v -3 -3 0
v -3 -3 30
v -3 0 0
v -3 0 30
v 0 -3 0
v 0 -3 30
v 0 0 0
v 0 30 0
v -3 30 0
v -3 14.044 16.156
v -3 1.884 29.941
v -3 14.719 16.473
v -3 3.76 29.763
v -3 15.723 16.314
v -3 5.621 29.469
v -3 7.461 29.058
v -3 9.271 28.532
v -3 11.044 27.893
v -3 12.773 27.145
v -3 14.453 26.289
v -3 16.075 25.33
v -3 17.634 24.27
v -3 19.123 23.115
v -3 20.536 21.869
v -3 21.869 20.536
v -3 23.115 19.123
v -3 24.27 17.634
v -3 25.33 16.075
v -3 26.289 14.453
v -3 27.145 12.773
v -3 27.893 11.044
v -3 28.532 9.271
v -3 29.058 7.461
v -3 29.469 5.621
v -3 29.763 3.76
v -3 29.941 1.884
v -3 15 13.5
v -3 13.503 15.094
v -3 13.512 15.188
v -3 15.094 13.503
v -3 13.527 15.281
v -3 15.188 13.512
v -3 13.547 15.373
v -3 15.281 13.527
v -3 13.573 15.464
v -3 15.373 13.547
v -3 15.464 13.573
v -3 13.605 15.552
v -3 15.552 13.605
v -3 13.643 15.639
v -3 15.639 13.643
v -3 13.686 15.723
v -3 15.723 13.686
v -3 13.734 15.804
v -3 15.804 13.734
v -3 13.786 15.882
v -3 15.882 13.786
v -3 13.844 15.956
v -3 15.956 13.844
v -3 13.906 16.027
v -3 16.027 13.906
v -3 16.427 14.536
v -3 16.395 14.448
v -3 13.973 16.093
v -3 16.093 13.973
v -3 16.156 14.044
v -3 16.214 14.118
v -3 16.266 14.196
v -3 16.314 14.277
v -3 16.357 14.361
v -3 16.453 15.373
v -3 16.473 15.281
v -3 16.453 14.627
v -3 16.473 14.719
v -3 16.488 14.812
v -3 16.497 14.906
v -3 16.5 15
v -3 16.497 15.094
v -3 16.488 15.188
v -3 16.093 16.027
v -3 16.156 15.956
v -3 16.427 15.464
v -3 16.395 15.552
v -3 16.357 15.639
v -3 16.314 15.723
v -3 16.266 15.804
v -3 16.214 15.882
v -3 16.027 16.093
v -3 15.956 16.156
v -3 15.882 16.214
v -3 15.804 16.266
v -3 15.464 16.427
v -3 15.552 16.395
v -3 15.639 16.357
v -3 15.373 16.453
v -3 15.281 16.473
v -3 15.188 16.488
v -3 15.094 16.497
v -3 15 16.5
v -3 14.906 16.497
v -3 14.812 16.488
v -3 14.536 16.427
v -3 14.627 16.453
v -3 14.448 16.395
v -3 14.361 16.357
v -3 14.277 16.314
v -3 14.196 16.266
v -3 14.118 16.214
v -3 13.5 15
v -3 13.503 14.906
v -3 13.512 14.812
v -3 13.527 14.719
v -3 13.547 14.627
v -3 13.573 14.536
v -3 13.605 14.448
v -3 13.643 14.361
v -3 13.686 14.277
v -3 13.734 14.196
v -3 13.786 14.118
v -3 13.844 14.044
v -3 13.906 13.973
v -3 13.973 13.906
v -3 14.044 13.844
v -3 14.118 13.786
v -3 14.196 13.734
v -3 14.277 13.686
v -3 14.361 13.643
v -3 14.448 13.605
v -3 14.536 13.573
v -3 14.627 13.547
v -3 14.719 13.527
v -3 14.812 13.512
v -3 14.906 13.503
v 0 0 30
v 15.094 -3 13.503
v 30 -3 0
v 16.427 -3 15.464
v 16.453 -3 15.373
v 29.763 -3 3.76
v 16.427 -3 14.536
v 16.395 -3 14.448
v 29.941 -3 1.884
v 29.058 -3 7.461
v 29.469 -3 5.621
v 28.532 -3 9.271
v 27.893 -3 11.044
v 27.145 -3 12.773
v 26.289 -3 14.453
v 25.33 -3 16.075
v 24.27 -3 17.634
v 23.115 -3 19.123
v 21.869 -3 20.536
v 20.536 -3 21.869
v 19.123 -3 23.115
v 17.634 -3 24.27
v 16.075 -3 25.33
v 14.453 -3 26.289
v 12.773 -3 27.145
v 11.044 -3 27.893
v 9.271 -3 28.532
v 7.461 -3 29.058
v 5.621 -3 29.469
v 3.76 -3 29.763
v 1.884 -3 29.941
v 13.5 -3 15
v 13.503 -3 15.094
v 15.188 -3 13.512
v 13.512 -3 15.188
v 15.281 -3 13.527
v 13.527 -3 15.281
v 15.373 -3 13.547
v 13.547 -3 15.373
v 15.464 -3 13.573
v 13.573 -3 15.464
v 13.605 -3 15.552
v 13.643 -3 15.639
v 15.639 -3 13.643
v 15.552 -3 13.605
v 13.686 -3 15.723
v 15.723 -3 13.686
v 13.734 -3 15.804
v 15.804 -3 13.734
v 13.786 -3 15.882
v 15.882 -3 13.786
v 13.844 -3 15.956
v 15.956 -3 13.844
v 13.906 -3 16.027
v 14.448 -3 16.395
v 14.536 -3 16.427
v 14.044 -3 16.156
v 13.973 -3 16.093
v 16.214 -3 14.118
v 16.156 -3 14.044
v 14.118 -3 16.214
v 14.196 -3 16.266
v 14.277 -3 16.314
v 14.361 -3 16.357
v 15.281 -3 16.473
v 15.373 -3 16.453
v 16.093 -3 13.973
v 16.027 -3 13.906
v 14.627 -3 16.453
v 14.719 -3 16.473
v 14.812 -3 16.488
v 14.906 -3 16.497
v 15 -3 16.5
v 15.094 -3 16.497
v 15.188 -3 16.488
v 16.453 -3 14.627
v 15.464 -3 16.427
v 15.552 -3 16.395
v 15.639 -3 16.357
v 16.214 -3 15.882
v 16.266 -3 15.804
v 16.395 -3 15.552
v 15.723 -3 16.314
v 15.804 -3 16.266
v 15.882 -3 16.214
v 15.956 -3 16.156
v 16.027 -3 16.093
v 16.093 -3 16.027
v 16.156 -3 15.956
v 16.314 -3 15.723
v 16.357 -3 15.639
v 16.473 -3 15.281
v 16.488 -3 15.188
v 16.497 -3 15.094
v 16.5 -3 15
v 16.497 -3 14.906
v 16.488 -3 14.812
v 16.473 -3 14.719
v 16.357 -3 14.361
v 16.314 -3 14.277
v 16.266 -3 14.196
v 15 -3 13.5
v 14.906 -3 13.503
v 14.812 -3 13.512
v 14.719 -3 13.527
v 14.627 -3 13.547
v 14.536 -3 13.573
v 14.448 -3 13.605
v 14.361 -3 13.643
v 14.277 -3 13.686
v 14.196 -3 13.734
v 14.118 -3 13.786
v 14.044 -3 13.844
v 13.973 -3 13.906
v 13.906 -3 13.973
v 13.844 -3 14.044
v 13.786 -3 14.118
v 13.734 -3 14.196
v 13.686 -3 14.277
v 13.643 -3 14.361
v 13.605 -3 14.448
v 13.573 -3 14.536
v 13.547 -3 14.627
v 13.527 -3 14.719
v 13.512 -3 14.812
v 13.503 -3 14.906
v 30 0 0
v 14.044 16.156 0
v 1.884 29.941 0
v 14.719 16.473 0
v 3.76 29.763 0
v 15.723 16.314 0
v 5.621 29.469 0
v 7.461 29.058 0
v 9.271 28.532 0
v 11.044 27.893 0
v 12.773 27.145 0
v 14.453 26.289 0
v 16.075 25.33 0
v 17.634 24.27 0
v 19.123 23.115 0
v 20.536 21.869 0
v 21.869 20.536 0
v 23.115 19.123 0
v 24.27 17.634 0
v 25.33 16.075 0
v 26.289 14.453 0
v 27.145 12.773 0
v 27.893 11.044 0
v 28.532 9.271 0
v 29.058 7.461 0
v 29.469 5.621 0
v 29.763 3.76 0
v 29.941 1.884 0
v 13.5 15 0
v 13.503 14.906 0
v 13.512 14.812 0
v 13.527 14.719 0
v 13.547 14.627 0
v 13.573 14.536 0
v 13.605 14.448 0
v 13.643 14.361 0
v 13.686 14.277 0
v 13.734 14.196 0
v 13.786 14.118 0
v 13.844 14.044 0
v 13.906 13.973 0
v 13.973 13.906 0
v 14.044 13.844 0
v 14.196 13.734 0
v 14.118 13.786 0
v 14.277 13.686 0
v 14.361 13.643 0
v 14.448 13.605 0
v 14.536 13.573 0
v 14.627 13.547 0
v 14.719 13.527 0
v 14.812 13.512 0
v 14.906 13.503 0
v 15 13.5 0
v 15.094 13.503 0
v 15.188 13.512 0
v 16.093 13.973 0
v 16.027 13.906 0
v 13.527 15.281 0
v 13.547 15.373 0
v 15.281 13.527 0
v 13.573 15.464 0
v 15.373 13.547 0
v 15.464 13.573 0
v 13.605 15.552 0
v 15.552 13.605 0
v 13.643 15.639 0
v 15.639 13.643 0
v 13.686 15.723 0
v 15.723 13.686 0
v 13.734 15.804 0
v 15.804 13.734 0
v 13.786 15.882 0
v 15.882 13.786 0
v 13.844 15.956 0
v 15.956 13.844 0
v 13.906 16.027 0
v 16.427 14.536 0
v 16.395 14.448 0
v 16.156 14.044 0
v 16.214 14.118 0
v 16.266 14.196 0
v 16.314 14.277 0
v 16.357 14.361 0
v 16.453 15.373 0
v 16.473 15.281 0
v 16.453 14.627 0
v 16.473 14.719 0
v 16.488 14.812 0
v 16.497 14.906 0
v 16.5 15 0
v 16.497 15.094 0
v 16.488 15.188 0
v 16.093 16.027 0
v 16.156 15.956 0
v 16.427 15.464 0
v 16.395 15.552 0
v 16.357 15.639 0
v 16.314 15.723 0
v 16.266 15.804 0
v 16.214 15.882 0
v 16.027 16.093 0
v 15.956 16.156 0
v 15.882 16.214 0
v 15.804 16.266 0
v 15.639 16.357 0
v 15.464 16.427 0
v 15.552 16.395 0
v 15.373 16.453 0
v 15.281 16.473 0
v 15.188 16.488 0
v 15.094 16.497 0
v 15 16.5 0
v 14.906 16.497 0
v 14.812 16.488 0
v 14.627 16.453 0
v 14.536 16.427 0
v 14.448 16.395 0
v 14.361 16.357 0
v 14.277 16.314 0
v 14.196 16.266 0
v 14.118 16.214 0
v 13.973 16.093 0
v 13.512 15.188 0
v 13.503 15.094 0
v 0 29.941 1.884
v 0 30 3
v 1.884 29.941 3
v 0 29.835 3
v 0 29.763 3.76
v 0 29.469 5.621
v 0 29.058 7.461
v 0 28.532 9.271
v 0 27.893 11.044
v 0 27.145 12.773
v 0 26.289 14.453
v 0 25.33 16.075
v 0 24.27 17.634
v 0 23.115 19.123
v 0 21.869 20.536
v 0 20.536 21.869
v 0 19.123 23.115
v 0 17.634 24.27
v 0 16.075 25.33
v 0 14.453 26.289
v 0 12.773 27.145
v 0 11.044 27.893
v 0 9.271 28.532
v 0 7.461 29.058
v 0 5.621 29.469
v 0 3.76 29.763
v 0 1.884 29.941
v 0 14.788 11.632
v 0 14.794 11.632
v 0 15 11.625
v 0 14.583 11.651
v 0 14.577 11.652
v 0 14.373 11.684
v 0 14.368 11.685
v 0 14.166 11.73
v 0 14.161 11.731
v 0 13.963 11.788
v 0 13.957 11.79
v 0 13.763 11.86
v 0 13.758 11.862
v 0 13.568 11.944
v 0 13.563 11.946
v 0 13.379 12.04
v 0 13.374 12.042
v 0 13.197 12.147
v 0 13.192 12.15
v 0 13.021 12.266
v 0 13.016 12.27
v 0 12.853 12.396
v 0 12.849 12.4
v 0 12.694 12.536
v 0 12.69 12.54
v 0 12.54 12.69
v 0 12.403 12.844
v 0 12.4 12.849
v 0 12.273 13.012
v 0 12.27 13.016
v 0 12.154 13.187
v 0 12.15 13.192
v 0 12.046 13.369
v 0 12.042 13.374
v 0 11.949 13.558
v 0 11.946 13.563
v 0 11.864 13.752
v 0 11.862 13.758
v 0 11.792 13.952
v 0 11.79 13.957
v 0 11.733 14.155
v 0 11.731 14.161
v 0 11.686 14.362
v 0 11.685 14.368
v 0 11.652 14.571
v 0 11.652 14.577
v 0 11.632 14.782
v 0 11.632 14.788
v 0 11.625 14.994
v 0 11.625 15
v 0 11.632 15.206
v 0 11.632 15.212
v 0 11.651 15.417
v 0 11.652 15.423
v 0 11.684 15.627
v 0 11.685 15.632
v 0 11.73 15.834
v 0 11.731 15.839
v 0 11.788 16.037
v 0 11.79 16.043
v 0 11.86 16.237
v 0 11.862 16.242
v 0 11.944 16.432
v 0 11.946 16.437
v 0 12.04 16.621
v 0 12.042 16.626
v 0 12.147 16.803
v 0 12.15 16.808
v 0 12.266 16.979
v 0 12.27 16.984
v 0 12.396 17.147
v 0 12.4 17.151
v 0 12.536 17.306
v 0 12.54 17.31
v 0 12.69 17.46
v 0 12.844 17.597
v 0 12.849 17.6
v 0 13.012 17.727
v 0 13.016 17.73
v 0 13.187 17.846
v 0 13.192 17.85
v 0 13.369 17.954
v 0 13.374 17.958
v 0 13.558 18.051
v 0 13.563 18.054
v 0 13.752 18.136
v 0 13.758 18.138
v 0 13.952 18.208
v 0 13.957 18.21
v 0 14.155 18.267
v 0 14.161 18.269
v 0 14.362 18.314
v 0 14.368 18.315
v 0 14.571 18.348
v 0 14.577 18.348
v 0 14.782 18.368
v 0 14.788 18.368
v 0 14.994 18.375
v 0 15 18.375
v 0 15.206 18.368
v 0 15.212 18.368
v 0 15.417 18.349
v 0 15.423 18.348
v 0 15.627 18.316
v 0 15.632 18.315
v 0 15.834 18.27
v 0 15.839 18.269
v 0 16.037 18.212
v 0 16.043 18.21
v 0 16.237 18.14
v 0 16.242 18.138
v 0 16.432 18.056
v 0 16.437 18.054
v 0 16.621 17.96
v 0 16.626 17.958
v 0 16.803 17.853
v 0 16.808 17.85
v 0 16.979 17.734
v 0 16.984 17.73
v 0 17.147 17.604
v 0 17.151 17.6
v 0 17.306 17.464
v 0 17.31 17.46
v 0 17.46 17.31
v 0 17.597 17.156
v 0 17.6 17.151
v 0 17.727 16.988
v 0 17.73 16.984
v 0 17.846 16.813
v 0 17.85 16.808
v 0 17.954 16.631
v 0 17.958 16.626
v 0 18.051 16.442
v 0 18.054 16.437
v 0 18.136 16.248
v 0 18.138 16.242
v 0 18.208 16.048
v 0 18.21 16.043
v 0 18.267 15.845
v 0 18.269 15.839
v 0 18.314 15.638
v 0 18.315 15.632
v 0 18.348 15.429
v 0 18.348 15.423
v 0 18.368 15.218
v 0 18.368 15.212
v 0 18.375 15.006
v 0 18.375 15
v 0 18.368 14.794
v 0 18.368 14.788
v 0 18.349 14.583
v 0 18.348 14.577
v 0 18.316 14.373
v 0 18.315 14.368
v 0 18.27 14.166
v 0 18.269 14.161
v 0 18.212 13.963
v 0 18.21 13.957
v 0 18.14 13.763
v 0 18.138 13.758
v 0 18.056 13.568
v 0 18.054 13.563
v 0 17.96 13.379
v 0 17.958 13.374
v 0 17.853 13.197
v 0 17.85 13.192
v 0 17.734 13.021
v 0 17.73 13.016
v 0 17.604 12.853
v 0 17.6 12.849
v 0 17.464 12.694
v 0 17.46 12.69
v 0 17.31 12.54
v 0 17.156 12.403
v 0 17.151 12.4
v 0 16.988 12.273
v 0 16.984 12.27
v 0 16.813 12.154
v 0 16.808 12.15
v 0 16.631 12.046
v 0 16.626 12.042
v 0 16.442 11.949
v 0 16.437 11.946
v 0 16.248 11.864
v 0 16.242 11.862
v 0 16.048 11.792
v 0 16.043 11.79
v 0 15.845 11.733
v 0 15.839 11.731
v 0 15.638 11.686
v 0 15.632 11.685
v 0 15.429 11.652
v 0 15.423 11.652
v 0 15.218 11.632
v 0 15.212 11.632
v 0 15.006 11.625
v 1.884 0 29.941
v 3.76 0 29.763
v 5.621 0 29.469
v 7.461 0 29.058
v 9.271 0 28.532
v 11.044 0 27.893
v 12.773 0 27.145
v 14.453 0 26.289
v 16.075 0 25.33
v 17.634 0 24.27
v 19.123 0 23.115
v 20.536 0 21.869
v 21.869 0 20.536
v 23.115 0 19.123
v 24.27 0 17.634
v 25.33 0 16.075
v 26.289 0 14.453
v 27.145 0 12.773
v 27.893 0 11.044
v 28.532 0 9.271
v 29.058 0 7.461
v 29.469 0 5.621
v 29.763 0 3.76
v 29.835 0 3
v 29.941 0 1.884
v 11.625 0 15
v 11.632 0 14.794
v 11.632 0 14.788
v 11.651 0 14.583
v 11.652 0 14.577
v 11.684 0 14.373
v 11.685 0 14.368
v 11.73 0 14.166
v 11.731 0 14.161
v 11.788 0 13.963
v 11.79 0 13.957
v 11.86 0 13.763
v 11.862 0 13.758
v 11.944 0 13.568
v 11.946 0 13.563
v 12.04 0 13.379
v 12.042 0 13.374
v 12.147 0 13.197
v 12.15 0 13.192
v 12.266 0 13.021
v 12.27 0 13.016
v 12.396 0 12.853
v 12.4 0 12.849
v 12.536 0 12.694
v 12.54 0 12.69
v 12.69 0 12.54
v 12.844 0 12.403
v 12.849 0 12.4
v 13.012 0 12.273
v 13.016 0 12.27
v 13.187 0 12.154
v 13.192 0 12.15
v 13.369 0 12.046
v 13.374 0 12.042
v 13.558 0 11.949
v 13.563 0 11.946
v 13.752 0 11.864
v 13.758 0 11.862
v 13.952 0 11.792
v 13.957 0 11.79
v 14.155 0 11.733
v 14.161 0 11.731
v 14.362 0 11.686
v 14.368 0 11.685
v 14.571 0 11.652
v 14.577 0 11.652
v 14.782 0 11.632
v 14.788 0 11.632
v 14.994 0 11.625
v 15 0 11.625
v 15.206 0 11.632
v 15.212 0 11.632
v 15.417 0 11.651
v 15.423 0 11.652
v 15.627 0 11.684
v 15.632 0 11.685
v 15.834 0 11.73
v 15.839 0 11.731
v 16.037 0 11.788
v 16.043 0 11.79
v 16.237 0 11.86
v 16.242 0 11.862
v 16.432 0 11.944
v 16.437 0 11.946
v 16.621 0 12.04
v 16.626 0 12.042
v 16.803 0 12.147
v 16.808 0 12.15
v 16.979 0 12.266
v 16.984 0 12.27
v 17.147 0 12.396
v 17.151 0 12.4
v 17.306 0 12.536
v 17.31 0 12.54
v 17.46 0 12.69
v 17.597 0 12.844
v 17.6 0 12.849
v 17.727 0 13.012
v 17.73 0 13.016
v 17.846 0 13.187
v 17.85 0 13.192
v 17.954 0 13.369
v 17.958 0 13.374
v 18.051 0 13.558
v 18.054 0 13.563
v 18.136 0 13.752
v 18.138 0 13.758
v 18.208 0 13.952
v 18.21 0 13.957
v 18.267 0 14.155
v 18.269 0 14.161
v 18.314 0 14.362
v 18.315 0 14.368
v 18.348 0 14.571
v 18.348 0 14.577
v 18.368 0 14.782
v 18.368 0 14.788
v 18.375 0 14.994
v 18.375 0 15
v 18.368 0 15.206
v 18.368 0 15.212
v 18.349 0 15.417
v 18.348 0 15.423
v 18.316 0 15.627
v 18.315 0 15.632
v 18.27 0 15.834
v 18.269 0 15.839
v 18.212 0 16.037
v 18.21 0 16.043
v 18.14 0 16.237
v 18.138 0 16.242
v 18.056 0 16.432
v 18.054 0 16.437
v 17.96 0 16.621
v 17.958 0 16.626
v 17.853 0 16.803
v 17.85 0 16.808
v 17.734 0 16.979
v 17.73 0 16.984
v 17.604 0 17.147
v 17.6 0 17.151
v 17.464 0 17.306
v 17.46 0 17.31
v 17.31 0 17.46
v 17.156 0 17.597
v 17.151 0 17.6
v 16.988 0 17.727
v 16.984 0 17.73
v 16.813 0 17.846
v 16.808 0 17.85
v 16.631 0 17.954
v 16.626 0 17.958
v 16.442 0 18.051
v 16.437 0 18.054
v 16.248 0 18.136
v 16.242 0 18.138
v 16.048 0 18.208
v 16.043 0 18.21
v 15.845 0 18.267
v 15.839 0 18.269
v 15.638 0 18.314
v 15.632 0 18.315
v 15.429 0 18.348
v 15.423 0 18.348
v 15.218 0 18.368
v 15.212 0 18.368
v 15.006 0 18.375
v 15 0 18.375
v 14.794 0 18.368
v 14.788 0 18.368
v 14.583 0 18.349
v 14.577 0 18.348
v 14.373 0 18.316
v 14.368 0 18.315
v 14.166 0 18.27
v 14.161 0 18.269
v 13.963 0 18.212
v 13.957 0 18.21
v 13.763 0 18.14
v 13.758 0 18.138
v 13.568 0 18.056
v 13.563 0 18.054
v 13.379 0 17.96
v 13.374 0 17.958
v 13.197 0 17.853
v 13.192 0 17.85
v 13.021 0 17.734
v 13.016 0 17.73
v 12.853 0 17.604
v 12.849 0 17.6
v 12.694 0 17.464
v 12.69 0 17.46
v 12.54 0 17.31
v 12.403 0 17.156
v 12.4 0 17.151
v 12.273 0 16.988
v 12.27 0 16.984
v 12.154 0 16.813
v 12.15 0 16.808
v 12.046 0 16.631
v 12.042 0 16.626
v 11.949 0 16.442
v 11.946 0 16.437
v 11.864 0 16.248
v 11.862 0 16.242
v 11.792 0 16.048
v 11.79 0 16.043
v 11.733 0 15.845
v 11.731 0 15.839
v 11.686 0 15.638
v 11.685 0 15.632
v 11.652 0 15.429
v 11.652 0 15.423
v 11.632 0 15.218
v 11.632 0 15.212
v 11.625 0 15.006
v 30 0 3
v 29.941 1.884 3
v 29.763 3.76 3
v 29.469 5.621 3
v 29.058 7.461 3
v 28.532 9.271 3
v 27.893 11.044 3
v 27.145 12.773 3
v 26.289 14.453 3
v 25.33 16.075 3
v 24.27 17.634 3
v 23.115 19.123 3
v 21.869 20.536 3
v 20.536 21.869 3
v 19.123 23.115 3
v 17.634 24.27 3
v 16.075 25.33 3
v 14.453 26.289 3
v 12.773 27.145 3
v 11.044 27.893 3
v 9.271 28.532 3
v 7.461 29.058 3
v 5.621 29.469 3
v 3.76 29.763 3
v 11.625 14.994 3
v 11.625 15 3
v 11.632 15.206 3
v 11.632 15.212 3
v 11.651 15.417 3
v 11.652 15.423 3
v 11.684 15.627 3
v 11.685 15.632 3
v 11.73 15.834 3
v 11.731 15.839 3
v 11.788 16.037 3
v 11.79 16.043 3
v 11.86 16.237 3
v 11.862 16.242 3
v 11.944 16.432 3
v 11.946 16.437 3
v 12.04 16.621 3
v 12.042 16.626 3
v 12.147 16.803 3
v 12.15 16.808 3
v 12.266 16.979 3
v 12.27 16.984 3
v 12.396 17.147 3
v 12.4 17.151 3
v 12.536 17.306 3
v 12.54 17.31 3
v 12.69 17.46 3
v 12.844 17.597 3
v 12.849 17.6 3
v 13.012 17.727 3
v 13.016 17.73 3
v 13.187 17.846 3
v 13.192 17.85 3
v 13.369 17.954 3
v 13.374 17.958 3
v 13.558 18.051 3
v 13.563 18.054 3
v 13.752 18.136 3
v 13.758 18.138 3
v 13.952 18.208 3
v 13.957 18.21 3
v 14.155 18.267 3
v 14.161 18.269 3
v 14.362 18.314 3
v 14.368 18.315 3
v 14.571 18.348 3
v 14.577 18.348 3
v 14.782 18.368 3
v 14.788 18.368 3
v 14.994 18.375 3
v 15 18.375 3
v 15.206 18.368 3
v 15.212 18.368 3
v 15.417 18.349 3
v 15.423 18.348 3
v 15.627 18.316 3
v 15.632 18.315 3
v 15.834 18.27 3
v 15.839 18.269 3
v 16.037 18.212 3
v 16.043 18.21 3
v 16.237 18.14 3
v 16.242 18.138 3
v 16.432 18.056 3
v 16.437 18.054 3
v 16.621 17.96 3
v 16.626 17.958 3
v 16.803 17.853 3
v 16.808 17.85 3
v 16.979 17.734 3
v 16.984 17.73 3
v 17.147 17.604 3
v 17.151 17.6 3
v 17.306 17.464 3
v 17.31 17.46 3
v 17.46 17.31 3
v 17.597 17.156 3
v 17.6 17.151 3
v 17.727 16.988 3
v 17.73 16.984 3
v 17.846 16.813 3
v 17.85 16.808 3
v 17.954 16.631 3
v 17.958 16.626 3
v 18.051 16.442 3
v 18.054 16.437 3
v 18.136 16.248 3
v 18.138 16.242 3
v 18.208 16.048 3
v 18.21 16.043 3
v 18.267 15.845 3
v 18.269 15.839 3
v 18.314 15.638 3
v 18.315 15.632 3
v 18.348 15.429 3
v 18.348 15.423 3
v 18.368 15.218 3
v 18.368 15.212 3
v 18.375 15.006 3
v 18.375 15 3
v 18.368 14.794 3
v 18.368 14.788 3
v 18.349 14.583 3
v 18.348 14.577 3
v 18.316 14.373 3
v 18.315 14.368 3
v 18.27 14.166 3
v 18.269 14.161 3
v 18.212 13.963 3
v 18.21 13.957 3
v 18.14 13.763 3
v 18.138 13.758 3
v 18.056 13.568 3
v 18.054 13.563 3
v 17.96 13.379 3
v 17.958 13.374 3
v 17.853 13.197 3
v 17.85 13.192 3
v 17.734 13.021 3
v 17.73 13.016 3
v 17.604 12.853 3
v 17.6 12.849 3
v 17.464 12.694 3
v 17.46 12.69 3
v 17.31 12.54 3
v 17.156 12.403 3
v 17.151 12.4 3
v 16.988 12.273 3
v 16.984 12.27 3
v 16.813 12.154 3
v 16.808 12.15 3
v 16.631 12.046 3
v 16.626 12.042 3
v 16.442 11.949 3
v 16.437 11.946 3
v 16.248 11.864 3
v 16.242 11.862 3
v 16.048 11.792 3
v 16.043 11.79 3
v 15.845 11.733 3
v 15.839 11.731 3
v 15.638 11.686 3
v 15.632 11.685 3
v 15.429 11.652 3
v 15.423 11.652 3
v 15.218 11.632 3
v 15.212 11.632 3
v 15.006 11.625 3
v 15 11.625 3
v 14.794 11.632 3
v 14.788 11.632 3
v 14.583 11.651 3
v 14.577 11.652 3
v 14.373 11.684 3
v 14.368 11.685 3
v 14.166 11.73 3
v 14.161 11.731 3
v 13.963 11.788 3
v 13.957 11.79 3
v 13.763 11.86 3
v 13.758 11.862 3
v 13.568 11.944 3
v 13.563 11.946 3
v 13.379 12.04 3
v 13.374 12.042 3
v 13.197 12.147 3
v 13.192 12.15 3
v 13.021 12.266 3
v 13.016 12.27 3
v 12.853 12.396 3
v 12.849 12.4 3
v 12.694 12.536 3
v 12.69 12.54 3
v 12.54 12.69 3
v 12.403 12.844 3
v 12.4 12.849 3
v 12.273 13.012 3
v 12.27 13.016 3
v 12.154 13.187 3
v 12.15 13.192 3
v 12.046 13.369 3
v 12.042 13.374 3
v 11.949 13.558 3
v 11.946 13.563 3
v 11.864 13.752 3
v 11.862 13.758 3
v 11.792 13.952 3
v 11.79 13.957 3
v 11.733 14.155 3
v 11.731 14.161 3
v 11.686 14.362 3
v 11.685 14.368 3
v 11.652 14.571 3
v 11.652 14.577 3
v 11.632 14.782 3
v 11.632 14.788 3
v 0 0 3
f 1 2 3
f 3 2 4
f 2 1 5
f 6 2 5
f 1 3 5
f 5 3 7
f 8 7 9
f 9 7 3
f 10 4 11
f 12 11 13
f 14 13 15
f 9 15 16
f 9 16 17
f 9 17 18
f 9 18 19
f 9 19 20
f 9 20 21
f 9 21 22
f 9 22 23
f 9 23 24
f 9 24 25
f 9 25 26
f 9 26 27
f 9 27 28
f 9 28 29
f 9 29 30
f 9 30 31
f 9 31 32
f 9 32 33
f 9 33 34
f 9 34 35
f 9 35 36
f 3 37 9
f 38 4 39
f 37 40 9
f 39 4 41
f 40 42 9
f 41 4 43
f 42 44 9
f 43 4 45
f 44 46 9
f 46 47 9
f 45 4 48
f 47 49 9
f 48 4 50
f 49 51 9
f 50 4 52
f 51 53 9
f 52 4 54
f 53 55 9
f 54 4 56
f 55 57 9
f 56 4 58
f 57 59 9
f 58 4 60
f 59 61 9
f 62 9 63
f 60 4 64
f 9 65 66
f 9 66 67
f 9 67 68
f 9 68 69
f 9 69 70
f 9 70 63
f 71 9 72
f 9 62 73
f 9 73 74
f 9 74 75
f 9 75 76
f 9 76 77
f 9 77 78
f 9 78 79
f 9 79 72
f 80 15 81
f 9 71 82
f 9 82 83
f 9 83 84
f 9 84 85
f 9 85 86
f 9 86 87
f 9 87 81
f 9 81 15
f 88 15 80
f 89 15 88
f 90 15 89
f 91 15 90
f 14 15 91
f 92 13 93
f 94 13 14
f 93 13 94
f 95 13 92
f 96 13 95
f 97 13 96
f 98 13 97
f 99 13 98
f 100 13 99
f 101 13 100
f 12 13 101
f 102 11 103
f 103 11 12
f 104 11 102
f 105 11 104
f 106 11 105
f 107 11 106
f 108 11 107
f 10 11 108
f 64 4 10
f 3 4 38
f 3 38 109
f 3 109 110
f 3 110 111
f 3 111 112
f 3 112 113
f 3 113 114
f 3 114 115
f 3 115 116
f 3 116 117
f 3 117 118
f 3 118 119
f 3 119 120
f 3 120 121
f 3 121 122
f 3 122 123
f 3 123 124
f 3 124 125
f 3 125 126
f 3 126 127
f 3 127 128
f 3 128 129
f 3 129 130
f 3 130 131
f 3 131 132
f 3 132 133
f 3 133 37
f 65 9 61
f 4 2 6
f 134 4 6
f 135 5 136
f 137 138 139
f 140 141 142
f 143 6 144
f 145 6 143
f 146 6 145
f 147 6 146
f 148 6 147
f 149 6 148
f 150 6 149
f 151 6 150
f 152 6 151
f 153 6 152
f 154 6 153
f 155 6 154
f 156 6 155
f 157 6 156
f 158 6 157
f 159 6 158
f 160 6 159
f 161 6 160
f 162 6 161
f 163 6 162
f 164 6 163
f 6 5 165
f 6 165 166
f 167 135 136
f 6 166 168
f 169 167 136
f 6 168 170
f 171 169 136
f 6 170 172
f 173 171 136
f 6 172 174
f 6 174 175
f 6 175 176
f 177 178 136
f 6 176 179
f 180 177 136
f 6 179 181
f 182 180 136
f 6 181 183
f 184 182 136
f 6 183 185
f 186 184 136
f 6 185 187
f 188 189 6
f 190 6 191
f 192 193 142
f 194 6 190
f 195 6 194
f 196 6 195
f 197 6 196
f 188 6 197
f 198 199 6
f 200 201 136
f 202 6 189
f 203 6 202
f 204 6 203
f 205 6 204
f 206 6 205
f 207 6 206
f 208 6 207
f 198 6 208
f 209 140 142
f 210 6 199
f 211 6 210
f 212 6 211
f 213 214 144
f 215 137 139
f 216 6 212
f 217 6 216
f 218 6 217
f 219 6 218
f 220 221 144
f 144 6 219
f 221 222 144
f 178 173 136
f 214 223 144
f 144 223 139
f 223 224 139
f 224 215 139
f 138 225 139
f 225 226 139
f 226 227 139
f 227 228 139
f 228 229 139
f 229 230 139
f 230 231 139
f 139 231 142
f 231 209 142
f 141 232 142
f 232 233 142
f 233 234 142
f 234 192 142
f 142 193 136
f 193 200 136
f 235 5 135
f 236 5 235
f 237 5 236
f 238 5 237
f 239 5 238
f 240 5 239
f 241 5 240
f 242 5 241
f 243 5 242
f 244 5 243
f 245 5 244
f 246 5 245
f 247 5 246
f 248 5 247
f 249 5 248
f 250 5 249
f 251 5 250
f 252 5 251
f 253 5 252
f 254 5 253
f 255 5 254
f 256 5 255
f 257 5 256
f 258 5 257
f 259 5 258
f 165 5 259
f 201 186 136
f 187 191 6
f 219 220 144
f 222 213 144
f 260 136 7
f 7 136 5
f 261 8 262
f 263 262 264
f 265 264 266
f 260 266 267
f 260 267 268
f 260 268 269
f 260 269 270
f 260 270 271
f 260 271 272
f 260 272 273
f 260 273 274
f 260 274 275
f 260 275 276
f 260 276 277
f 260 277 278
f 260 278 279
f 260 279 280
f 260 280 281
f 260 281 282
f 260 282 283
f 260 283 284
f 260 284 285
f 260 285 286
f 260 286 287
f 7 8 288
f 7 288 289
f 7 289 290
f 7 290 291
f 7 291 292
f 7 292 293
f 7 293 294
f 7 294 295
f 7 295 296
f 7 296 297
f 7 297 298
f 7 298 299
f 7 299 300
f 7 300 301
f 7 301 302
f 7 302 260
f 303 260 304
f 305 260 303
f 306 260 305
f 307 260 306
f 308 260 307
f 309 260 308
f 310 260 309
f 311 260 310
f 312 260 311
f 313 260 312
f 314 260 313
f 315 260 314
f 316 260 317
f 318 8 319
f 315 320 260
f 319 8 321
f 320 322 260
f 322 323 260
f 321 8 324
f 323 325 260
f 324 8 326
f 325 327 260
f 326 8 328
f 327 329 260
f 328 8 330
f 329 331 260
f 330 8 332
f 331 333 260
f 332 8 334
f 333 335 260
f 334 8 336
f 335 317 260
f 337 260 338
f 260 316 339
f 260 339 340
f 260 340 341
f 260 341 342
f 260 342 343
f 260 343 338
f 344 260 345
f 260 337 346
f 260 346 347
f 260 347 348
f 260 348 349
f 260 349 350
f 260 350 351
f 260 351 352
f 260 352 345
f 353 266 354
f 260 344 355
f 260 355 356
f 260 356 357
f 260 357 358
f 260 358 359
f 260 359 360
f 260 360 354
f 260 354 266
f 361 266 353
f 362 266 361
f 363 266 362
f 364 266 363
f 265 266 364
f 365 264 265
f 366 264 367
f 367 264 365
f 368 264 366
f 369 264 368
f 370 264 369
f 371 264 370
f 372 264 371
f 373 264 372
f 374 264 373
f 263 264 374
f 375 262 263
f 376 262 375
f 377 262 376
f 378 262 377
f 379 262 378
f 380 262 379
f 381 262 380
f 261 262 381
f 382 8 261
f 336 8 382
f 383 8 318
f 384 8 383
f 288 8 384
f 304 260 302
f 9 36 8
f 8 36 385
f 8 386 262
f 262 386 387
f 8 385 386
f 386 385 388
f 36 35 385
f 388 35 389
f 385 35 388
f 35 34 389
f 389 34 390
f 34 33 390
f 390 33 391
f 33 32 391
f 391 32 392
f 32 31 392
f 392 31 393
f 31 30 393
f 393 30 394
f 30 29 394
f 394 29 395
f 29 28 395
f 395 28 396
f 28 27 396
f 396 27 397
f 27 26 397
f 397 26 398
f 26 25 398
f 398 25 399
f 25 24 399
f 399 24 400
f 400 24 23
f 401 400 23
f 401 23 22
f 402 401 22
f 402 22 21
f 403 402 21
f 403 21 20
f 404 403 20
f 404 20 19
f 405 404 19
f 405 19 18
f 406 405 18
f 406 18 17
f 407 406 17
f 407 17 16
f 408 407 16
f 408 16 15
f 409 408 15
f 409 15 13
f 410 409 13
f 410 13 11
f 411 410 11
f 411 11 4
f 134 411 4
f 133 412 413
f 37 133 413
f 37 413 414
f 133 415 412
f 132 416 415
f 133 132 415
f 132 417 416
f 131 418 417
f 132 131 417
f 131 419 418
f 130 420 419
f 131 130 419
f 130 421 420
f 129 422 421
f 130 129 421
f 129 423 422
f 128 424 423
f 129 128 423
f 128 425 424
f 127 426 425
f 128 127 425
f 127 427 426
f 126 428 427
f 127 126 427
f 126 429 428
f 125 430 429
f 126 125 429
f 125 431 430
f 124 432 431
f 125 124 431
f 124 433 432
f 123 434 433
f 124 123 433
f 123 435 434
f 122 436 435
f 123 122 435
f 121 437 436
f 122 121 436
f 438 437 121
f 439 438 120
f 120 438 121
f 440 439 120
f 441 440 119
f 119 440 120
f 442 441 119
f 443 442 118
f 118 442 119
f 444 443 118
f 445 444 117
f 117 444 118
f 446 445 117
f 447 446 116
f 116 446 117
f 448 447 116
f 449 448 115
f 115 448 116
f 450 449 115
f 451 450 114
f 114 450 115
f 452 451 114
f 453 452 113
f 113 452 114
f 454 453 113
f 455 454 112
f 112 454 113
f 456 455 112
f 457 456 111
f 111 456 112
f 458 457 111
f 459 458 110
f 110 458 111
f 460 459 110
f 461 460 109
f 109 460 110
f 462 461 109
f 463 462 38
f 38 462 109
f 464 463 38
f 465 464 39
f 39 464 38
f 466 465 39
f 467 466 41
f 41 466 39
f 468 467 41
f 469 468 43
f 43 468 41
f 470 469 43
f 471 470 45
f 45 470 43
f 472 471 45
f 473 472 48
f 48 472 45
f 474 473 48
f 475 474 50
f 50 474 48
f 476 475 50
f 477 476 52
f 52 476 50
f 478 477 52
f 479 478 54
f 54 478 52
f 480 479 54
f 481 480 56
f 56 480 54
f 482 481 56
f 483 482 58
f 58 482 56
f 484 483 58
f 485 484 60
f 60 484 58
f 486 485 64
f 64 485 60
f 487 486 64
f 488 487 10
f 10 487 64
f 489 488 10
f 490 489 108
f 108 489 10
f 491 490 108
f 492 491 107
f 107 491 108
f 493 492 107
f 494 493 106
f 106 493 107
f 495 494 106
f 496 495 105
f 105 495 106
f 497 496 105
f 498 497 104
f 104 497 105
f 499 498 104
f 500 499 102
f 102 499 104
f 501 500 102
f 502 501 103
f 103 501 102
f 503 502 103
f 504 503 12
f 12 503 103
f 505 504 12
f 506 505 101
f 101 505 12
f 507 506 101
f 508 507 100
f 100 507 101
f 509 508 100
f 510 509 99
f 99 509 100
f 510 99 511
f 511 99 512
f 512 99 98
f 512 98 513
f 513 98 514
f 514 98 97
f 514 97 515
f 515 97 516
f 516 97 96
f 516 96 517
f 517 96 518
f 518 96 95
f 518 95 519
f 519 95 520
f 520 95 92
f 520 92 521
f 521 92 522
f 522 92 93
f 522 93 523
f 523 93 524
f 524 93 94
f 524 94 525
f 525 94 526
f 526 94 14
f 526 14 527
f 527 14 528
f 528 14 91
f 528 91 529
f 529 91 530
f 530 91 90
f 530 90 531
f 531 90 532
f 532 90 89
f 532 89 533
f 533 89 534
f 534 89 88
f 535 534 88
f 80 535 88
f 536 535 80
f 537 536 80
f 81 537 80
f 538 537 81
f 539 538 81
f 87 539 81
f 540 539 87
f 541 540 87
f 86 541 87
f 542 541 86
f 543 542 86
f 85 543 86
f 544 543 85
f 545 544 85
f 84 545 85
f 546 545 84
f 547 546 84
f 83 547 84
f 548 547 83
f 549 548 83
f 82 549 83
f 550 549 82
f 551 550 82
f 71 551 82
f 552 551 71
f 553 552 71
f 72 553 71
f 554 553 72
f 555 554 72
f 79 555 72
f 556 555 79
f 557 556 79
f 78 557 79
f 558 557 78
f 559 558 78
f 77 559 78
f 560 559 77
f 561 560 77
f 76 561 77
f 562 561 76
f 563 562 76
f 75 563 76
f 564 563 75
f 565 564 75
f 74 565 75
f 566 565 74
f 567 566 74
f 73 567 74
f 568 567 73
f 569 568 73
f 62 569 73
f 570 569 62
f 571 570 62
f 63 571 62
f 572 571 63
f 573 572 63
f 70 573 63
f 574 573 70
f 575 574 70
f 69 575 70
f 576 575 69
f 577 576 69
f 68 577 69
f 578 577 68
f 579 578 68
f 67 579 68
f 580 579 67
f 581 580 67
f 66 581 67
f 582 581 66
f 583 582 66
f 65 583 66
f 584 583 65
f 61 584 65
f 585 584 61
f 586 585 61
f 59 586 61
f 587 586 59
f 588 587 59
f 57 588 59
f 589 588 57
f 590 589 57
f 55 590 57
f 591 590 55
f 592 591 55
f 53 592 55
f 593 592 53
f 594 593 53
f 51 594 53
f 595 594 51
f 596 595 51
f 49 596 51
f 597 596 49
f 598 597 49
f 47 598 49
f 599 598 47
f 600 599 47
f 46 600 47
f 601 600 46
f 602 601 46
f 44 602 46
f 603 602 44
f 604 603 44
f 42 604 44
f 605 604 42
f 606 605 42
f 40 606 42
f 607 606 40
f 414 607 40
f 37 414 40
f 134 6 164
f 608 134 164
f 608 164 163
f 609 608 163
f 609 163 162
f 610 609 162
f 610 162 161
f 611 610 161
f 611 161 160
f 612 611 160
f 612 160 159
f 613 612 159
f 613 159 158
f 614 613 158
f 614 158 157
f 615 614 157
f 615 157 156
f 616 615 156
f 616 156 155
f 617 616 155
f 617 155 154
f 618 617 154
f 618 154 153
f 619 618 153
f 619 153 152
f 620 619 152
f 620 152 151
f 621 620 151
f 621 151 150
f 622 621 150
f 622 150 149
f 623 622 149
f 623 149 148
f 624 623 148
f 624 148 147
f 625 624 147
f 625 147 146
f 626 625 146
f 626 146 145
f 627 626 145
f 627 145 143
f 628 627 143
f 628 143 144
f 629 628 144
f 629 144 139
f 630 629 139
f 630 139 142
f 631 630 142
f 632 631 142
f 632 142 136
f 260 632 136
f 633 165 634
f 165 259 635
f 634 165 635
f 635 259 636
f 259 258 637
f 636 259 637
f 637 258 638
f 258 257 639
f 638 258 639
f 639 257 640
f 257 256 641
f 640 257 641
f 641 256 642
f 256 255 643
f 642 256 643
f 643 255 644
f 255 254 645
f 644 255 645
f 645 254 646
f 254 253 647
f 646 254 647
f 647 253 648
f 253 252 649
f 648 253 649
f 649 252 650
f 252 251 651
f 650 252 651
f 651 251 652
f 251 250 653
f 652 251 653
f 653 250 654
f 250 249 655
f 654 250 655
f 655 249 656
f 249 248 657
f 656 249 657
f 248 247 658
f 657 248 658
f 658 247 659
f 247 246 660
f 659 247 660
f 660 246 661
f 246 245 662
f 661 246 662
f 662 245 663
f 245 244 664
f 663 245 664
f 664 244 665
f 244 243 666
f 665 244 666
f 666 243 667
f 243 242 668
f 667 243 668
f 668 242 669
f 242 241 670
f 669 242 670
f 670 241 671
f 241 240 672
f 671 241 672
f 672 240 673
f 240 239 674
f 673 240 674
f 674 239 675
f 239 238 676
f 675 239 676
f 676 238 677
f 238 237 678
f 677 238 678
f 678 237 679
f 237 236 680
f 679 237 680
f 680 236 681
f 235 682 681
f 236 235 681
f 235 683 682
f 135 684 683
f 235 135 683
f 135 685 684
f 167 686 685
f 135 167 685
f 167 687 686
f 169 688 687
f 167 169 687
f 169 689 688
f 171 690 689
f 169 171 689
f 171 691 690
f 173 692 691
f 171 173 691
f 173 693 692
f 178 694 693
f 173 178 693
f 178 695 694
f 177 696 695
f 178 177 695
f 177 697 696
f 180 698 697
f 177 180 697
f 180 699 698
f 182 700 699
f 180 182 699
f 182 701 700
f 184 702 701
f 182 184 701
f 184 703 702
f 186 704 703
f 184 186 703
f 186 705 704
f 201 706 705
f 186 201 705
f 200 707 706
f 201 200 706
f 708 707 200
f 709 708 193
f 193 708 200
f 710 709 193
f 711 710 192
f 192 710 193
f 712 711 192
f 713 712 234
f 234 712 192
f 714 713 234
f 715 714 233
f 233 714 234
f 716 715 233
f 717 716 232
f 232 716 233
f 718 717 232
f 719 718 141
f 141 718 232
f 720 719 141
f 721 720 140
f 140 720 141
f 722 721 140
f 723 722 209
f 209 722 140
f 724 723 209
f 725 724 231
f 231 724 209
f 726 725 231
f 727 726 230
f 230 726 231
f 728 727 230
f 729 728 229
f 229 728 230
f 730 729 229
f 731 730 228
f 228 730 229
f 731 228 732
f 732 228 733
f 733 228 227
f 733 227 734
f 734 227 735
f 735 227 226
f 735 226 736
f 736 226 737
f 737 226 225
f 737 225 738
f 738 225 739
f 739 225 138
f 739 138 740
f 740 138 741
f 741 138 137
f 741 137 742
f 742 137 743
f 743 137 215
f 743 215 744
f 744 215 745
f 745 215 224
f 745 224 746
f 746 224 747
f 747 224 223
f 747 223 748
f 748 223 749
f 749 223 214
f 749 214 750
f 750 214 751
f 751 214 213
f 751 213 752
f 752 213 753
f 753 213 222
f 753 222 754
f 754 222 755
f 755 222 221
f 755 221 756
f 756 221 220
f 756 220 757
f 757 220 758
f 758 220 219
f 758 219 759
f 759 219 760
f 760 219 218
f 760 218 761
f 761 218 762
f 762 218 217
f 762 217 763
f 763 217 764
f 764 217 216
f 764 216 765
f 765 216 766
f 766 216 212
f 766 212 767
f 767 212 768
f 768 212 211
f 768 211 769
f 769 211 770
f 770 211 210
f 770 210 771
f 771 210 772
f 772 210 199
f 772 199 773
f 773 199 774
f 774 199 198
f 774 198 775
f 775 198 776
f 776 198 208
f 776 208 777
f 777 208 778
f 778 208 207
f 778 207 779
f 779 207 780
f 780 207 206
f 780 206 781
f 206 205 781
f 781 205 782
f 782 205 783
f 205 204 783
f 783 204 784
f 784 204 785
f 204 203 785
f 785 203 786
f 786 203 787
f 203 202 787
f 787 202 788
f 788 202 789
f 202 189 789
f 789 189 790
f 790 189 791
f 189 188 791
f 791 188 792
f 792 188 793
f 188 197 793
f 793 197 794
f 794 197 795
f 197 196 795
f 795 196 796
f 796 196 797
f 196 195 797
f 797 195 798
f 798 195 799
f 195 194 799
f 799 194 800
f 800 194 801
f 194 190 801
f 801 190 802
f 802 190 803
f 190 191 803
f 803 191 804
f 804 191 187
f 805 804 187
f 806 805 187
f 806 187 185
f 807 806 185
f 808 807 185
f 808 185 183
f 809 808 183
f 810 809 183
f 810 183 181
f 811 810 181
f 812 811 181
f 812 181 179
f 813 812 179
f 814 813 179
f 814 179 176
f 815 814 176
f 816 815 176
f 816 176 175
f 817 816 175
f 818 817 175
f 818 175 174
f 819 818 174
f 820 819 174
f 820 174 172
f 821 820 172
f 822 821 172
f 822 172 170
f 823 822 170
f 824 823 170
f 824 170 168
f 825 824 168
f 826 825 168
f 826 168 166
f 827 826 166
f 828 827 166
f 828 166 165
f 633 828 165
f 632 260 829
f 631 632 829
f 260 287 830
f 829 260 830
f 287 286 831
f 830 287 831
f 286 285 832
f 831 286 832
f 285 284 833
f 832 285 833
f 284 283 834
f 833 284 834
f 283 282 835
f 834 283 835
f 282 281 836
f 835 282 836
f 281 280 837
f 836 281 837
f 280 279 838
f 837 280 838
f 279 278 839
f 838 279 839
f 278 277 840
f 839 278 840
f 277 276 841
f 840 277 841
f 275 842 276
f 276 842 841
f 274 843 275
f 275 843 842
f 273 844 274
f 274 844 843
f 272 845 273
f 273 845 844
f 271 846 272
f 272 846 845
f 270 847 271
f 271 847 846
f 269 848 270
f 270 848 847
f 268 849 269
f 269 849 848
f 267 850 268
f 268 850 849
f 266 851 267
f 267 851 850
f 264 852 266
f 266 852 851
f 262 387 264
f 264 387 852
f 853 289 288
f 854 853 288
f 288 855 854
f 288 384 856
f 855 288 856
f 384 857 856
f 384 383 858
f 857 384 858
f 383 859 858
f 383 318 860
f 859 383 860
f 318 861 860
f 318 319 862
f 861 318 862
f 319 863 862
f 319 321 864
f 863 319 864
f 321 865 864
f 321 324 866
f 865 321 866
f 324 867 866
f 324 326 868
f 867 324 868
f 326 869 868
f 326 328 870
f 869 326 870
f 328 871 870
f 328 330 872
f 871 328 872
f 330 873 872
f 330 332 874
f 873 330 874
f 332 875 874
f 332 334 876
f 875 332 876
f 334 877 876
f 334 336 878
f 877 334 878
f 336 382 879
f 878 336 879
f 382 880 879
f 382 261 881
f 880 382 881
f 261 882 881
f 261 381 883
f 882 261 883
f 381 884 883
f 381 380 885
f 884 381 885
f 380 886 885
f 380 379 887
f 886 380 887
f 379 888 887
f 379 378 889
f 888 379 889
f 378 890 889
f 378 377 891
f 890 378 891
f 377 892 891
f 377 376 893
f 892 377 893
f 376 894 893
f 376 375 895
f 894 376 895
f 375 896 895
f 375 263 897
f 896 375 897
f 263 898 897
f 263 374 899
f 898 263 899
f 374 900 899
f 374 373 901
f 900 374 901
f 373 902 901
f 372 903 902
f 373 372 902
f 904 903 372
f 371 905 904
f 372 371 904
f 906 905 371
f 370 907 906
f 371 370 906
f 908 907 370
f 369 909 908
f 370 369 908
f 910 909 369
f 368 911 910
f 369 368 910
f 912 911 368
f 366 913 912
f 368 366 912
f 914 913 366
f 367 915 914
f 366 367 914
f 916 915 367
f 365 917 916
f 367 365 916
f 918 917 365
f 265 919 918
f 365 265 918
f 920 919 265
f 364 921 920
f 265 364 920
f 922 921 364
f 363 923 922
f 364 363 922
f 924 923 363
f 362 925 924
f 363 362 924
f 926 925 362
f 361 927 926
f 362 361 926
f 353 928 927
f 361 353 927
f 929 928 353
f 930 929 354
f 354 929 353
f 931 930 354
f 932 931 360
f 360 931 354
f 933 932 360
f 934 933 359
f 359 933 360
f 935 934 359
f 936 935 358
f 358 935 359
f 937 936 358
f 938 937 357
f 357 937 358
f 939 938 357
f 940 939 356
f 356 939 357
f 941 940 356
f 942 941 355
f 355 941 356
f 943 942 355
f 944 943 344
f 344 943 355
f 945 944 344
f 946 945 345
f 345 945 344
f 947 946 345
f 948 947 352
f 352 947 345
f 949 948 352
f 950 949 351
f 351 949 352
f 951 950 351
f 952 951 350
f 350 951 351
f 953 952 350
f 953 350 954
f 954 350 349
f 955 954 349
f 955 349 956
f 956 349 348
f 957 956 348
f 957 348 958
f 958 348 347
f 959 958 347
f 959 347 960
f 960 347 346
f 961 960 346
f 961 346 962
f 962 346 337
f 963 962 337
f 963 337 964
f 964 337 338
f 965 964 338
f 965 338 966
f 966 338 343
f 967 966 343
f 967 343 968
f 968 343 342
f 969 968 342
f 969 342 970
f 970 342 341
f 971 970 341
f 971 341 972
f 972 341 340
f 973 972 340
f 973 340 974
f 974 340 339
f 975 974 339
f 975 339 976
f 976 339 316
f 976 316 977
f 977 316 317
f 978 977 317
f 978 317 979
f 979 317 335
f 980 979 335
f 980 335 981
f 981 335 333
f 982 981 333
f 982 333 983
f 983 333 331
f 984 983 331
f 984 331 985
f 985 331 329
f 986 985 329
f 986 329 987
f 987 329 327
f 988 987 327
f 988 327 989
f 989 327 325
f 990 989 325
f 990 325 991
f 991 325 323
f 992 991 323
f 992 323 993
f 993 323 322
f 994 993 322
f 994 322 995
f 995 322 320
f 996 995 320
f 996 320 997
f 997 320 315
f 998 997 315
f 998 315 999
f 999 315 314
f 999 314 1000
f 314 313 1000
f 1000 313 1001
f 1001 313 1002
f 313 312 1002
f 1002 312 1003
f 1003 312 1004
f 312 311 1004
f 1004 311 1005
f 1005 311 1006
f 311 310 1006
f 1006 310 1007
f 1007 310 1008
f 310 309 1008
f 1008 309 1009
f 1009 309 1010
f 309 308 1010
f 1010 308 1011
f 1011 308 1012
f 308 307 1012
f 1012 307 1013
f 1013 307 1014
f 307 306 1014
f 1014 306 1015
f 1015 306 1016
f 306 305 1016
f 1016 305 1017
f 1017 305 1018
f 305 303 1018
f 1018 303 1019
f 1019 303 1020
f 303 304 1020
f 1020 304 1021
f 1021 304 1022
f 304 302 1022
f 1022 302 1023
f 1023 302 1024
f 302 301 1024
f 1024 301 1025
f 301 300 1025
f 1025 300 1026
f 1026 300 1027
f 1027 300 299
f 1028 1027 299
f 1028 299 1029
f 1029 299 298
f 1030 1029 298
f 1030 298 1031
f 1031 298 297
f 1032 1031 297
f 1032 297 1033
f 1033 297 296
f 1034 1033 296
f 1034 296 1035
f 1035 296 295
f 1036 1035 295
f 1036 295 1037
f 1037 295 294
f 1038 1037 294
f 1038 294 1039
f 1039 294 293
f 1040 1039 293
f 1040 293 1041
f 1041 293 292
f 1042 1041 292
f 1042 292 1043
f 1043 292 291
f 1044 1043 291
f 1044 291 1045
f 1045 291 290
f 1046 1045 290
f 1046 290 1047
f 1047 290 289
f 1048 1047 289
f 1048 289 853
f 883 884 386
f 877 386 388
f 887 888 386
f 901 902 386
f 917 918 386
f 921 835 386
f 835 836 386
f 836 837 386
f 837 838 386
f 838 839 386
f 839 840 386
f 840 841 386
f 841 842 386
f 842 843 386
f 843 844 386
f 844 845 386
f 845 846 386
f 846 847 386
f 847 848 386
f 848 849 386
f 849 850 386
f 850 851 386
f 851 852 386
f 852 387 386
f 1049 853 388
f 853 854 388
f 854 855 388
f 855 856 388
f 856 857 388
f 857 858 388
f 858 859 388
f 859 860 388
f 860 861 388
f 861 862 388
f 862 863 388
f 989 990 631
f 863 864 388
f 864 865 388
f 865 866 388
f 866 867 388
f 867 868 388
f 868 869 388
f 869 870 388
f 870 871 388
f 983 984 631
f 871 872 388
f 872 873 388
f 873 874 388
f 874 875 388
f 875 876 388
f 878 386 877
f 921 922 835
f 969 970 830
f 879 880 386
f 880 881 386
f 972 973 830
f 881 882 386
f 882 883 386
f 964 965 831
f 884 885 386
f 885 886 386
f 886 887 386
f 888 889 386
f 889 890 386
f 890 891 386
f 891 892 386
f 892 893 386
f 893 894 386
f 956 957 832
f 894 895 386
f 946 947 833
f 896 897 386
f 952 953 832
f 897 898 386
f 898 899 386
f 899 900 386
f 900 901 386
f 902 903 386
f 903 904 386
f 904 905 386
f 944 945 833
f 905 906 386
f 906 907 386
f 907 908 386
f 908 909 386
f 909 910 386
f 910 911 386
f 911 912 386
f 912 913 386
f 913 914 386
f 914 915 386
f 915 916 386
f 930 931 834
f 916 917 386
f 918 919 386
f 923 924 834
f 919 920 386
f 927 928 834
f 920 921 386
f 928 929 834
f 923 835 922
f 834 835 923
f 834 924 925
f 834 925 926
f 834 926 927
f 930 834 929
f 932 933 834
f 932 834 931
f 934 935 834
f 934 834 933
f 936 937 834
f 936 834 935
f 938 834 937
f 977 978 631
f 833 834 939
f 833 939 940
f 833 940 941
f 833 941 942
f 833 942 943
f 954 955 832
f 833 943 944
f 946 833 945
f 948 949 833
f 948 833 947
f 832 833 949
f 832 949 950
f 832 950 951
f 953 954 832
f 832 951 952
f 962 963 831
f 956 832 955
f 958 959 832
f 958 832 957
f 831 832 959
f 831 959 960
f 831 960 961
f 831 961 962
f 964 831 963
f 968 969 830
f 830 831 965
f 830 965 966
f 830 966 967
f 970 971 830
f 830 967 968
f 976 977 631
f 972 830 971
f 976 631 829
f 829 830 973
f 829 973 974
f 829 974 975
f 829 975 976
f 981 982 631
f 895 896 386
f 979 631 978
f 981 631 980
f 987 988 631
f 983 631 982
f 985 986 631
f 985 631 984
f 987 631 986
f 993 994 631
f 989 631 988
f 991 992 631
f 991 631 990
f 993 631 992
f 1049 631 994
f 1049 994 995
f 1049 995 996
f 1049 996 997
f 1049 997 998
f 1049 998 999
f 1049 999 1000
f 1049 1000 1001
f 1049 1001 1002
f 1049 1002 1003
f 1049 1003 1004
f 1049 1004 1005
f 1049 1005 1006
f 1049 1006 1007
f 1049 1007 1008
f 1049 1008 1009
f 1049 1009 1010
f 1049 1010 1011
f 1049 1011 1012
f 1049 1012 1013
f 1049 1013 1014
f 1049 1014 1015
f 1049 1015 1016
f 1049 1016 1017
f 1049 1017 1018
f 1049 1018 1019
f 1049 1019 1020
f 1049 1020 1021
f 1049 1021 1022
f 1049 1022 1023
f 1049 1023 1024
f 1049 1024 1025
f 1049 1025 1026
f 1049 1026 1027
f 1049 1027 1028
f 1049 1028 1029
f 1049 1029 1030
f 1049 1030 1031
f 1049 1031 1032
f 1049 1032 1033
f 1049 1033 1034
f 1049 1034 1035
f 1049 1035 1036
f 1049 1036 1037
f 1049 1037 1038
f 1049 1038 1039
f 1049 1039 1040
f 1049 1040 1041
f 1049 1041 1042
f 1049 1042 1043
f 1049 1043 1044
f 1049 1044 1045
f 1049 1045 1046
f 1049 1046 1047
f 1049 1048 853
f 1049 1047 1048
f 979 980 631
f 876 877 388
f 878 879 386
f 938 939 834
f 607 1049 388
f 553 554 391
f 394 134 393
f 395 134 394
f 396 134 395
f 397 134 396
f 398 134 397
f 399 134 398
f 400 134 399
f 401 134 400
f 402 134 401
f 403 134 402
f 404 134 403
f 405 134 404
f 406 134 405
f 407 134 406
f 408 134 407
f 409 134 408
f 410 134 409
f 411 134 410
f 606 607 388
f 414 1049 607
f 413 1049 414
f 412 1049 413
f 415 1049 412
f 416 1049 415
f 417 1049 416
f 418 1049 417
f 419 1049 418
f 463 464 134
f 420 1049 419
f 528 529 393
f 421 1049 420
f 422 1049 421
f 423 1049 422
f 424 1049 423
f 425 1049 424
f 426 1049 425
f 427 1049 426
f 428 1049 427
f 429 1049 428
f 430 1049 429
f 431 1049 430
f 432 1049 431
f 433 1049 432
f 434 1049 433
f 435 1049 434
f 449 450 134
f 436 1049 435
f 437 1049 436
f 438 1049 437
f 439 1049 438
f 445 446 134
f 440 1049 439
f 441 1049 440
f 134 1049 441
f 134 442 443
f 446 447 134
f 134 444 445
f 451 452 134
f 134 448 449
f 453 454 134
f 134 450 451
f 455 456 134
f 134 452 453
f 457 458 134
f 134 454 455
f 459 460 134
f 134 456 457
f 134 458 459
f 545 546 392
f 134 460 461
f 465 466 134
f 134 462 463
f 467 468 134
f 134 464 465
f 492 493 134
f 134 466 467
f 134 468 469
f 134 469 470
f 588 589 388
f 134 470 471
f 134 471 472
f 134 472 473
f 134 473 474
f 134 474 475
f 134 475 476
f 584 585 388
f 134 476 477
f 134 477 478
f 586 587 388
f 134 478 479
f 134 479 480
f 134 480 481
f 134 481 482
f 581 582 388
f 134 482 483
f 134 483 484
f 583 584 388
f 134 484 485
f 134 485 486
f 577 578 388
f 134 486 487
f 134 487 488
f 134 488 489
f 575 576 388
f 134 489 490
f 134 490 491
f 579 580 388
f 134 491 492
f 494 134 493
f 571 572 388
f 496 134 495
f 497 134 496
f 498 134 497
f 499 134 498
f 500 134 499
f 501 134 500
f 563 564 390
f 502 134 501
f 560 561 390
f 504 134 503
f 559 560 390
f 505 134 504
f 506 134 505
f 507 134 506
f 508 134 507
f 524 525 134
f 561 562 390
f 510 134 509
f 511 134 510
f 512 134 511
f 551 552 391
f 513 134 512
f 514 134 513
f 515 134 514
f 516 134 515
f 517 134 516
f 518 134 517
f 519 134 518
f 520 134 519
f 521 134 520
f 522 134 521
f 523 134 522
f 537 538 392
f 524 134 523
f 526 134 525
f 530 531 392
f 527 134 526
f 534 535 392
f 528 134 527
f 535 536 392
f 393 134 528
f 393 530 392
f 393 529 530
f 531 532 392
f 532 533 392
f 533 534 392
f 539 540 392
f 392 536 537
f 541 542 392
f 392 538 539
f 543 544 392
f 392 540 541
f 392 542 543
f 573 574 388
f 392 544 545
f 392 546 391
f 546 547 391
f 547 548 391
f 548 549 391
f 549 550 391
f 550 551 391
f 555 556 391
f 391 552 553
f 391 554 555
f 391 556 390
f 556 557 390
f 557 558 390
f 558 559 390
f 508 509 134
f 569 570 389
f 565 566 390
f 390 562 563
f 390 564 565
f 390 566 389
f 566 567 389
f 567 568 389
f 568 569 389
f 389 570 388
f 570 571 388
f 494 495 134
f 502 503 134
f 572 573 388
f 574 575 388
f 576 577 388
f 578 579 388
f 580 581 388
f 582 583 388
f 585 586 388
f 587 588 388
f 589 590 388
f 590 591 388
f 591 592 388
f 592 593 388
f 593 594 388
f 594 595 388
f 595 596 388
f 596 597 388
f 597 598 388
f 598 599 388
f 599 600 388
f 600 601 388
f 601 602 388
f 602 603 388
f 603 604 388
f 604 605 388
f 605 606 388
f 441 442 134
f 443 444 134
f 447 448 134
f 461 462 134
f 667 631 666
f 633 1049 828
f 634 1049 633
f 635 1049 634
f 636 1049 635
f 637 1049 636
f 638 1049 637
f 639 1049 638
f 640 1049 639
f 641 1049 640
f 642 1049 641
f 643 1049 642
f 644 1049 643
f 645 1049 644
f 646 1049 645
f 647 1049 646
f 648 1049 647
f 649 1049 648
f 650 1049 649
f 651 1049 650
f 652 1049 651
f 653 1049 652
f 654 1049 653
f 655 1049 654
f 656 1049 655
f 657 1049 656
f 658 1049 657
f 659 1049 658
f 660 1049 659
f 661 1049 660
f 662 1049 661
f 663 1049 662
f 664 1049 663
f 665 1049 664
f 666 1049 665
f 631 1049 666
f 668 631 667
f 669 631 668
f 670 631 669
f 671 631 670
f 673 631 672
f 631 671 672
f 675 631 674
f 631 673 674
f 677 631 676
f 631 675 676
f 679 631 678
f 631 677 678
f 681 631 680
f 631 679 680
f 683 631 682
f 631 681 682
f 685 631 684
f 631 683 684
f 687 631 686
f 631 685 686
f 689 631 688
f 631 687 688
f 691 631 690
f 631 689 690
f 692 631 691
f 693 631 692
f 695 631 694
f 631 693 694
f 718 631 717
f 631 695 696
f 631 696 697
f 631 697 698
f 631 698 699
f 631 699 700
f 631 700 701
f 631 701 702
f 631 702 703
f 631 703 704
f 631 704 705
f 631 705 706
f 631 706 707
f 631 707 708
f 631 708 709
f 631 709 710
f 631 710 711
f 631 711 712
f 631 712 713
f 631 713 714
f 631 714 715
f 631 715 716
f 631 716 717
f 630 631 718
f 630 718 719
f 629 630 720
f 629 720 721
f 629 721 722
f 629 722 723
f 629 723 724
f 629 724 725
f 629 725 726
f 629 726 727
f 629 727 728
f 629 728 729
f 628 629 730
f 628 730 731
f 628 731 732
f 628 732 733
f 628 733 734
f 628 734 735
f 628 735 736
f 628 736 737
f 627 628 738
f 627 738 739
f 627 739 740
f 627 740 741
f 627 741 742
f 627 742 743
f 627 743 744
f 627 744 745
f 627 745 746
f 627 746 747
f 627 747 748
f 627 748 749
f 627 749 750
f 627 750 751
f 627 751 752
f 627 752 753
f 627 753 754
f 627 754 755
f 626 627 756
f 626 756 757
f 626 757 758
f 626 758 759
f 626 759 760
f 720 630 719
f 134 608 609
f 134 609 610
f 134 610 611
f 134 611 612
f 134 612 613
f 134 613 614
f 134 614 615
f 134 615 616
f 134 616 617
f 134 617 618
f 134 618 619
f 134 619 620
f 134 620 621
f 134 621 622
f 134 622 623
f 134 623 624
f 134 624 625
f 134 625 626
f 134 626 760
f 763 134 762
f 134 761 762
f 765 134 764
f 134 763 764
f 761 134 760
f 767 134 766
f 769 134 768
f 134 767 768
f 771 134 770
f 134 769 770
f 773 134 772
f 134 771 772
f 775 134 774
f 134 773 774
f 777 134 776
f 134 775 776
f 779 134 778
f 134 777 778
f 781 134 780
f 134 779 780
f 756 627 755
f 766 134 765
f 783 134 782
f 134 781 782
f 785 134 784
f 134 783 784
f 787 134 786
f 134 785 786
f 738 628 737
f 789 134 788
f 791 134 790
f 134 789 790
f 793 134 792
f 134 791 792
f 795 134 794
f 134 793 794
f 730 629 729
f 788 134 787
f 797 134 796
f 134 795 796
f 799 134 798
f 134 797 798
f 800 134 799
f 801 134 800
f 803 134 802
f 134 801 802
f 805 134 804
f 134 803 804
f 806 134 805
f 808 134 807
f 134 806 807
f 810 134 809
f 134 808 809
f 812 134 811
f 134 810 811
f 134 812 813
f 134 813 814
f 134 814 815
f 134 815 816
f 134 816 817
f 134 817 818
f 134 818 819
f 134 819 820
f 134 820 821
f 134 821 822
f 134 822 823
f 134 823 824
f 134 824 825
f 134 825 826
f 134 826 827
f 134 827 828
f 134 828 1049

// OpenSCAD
///////////////////////////////////////////////////////////////////////////////
//                                                                           //
//                       MaduixaCNC - BCN Dynamics                           //
//                                                                           //
///////////////////////////////////////////////////////////////////////////////
//
// File: 3sides-corner-CNC.scad
//
// Authors: Dani Díaz <dani@bcndynamics.com>,
//          Victor Sapena <victor@bcndynamics.com>,
//          Emili Sapena <emili@bcndynamics.com>
//
// Copyright (c) 2015 by the original authors.
//
// This file is part of MaduixaCNC.
// 
// MaduixaCNC is free: you can redistribute it and/or modify
// it under the terms of the GNU General Public License as published by
// the Free Software Foundation, either version 3 of the License, or
// (at your option) any later version.
// 
// MaduixaCNC is distributed in the hope that it will be useful,
// but WITHOUT ANY WARRANTY; without even the implied warranty of
// MERCHANTABILITY or FITNESS FOR A PARTICULAR PURPOSE.  See the
// GNU General Public License for more details.
// 
// You should have received a copy of the GNU General Public License
// along with MaduixaCNC.  If not, see <http://www.gnu.org/licenses/>.
//
// http://bcndynamics.com 
///////////////////////////////////////////////////////////////////////////////

///////////////////////////////////////////////////////////////////////////////
// Variables

radi_sup=30;
gruix=3;

///////////////////////////////////////////////////////////////////////////////
// Modules

module superficie(){

  difference(){
    cylinder(r=radi_sup,h=gruix,$fn=100);

    union(){
      translate([-radi_sup,0,0])
	cube([radi_sup,radi_sup,gruix]);
      translate([-radi_sup,-radi_sup,0])
	cube([radi_sup,radi_sup,gruix]);
      translate([0,-radi_sup,0])
	cube([radi_sup,radi_sup,gruix]);
      
    }
  }
}

///////////////////////////////////////////////////////////////////////////////
// Main

difference(){
  union(){
    superficie();
    
    rotate([90,0,0])
      superficie();

    rotate([0,-90,0])
      superficie();

    translate([-gruix,-gruix,0])
      cube([gruix,gruix,radi_sup]);
  }
  
  union(){
    translate([radi_sup/2,radi_sup/2,0])
    cylinder(r1=3/2,r2=7/2,h=3.2,$fn=100);

    translate([-gruix,radi_sup/2,radi_sup/2])
    rotate([0,90,0])
      cylinder(r1=3/2,r2=7/2,h=3.2,$fn=100);

    translate([radi_sup/2,-gruix,radi_sup/2])
    rotate([-90,0,0])
      cylinder(r1=3/2,r2=7/2,h=3.2,$fn=100);
  }
}
